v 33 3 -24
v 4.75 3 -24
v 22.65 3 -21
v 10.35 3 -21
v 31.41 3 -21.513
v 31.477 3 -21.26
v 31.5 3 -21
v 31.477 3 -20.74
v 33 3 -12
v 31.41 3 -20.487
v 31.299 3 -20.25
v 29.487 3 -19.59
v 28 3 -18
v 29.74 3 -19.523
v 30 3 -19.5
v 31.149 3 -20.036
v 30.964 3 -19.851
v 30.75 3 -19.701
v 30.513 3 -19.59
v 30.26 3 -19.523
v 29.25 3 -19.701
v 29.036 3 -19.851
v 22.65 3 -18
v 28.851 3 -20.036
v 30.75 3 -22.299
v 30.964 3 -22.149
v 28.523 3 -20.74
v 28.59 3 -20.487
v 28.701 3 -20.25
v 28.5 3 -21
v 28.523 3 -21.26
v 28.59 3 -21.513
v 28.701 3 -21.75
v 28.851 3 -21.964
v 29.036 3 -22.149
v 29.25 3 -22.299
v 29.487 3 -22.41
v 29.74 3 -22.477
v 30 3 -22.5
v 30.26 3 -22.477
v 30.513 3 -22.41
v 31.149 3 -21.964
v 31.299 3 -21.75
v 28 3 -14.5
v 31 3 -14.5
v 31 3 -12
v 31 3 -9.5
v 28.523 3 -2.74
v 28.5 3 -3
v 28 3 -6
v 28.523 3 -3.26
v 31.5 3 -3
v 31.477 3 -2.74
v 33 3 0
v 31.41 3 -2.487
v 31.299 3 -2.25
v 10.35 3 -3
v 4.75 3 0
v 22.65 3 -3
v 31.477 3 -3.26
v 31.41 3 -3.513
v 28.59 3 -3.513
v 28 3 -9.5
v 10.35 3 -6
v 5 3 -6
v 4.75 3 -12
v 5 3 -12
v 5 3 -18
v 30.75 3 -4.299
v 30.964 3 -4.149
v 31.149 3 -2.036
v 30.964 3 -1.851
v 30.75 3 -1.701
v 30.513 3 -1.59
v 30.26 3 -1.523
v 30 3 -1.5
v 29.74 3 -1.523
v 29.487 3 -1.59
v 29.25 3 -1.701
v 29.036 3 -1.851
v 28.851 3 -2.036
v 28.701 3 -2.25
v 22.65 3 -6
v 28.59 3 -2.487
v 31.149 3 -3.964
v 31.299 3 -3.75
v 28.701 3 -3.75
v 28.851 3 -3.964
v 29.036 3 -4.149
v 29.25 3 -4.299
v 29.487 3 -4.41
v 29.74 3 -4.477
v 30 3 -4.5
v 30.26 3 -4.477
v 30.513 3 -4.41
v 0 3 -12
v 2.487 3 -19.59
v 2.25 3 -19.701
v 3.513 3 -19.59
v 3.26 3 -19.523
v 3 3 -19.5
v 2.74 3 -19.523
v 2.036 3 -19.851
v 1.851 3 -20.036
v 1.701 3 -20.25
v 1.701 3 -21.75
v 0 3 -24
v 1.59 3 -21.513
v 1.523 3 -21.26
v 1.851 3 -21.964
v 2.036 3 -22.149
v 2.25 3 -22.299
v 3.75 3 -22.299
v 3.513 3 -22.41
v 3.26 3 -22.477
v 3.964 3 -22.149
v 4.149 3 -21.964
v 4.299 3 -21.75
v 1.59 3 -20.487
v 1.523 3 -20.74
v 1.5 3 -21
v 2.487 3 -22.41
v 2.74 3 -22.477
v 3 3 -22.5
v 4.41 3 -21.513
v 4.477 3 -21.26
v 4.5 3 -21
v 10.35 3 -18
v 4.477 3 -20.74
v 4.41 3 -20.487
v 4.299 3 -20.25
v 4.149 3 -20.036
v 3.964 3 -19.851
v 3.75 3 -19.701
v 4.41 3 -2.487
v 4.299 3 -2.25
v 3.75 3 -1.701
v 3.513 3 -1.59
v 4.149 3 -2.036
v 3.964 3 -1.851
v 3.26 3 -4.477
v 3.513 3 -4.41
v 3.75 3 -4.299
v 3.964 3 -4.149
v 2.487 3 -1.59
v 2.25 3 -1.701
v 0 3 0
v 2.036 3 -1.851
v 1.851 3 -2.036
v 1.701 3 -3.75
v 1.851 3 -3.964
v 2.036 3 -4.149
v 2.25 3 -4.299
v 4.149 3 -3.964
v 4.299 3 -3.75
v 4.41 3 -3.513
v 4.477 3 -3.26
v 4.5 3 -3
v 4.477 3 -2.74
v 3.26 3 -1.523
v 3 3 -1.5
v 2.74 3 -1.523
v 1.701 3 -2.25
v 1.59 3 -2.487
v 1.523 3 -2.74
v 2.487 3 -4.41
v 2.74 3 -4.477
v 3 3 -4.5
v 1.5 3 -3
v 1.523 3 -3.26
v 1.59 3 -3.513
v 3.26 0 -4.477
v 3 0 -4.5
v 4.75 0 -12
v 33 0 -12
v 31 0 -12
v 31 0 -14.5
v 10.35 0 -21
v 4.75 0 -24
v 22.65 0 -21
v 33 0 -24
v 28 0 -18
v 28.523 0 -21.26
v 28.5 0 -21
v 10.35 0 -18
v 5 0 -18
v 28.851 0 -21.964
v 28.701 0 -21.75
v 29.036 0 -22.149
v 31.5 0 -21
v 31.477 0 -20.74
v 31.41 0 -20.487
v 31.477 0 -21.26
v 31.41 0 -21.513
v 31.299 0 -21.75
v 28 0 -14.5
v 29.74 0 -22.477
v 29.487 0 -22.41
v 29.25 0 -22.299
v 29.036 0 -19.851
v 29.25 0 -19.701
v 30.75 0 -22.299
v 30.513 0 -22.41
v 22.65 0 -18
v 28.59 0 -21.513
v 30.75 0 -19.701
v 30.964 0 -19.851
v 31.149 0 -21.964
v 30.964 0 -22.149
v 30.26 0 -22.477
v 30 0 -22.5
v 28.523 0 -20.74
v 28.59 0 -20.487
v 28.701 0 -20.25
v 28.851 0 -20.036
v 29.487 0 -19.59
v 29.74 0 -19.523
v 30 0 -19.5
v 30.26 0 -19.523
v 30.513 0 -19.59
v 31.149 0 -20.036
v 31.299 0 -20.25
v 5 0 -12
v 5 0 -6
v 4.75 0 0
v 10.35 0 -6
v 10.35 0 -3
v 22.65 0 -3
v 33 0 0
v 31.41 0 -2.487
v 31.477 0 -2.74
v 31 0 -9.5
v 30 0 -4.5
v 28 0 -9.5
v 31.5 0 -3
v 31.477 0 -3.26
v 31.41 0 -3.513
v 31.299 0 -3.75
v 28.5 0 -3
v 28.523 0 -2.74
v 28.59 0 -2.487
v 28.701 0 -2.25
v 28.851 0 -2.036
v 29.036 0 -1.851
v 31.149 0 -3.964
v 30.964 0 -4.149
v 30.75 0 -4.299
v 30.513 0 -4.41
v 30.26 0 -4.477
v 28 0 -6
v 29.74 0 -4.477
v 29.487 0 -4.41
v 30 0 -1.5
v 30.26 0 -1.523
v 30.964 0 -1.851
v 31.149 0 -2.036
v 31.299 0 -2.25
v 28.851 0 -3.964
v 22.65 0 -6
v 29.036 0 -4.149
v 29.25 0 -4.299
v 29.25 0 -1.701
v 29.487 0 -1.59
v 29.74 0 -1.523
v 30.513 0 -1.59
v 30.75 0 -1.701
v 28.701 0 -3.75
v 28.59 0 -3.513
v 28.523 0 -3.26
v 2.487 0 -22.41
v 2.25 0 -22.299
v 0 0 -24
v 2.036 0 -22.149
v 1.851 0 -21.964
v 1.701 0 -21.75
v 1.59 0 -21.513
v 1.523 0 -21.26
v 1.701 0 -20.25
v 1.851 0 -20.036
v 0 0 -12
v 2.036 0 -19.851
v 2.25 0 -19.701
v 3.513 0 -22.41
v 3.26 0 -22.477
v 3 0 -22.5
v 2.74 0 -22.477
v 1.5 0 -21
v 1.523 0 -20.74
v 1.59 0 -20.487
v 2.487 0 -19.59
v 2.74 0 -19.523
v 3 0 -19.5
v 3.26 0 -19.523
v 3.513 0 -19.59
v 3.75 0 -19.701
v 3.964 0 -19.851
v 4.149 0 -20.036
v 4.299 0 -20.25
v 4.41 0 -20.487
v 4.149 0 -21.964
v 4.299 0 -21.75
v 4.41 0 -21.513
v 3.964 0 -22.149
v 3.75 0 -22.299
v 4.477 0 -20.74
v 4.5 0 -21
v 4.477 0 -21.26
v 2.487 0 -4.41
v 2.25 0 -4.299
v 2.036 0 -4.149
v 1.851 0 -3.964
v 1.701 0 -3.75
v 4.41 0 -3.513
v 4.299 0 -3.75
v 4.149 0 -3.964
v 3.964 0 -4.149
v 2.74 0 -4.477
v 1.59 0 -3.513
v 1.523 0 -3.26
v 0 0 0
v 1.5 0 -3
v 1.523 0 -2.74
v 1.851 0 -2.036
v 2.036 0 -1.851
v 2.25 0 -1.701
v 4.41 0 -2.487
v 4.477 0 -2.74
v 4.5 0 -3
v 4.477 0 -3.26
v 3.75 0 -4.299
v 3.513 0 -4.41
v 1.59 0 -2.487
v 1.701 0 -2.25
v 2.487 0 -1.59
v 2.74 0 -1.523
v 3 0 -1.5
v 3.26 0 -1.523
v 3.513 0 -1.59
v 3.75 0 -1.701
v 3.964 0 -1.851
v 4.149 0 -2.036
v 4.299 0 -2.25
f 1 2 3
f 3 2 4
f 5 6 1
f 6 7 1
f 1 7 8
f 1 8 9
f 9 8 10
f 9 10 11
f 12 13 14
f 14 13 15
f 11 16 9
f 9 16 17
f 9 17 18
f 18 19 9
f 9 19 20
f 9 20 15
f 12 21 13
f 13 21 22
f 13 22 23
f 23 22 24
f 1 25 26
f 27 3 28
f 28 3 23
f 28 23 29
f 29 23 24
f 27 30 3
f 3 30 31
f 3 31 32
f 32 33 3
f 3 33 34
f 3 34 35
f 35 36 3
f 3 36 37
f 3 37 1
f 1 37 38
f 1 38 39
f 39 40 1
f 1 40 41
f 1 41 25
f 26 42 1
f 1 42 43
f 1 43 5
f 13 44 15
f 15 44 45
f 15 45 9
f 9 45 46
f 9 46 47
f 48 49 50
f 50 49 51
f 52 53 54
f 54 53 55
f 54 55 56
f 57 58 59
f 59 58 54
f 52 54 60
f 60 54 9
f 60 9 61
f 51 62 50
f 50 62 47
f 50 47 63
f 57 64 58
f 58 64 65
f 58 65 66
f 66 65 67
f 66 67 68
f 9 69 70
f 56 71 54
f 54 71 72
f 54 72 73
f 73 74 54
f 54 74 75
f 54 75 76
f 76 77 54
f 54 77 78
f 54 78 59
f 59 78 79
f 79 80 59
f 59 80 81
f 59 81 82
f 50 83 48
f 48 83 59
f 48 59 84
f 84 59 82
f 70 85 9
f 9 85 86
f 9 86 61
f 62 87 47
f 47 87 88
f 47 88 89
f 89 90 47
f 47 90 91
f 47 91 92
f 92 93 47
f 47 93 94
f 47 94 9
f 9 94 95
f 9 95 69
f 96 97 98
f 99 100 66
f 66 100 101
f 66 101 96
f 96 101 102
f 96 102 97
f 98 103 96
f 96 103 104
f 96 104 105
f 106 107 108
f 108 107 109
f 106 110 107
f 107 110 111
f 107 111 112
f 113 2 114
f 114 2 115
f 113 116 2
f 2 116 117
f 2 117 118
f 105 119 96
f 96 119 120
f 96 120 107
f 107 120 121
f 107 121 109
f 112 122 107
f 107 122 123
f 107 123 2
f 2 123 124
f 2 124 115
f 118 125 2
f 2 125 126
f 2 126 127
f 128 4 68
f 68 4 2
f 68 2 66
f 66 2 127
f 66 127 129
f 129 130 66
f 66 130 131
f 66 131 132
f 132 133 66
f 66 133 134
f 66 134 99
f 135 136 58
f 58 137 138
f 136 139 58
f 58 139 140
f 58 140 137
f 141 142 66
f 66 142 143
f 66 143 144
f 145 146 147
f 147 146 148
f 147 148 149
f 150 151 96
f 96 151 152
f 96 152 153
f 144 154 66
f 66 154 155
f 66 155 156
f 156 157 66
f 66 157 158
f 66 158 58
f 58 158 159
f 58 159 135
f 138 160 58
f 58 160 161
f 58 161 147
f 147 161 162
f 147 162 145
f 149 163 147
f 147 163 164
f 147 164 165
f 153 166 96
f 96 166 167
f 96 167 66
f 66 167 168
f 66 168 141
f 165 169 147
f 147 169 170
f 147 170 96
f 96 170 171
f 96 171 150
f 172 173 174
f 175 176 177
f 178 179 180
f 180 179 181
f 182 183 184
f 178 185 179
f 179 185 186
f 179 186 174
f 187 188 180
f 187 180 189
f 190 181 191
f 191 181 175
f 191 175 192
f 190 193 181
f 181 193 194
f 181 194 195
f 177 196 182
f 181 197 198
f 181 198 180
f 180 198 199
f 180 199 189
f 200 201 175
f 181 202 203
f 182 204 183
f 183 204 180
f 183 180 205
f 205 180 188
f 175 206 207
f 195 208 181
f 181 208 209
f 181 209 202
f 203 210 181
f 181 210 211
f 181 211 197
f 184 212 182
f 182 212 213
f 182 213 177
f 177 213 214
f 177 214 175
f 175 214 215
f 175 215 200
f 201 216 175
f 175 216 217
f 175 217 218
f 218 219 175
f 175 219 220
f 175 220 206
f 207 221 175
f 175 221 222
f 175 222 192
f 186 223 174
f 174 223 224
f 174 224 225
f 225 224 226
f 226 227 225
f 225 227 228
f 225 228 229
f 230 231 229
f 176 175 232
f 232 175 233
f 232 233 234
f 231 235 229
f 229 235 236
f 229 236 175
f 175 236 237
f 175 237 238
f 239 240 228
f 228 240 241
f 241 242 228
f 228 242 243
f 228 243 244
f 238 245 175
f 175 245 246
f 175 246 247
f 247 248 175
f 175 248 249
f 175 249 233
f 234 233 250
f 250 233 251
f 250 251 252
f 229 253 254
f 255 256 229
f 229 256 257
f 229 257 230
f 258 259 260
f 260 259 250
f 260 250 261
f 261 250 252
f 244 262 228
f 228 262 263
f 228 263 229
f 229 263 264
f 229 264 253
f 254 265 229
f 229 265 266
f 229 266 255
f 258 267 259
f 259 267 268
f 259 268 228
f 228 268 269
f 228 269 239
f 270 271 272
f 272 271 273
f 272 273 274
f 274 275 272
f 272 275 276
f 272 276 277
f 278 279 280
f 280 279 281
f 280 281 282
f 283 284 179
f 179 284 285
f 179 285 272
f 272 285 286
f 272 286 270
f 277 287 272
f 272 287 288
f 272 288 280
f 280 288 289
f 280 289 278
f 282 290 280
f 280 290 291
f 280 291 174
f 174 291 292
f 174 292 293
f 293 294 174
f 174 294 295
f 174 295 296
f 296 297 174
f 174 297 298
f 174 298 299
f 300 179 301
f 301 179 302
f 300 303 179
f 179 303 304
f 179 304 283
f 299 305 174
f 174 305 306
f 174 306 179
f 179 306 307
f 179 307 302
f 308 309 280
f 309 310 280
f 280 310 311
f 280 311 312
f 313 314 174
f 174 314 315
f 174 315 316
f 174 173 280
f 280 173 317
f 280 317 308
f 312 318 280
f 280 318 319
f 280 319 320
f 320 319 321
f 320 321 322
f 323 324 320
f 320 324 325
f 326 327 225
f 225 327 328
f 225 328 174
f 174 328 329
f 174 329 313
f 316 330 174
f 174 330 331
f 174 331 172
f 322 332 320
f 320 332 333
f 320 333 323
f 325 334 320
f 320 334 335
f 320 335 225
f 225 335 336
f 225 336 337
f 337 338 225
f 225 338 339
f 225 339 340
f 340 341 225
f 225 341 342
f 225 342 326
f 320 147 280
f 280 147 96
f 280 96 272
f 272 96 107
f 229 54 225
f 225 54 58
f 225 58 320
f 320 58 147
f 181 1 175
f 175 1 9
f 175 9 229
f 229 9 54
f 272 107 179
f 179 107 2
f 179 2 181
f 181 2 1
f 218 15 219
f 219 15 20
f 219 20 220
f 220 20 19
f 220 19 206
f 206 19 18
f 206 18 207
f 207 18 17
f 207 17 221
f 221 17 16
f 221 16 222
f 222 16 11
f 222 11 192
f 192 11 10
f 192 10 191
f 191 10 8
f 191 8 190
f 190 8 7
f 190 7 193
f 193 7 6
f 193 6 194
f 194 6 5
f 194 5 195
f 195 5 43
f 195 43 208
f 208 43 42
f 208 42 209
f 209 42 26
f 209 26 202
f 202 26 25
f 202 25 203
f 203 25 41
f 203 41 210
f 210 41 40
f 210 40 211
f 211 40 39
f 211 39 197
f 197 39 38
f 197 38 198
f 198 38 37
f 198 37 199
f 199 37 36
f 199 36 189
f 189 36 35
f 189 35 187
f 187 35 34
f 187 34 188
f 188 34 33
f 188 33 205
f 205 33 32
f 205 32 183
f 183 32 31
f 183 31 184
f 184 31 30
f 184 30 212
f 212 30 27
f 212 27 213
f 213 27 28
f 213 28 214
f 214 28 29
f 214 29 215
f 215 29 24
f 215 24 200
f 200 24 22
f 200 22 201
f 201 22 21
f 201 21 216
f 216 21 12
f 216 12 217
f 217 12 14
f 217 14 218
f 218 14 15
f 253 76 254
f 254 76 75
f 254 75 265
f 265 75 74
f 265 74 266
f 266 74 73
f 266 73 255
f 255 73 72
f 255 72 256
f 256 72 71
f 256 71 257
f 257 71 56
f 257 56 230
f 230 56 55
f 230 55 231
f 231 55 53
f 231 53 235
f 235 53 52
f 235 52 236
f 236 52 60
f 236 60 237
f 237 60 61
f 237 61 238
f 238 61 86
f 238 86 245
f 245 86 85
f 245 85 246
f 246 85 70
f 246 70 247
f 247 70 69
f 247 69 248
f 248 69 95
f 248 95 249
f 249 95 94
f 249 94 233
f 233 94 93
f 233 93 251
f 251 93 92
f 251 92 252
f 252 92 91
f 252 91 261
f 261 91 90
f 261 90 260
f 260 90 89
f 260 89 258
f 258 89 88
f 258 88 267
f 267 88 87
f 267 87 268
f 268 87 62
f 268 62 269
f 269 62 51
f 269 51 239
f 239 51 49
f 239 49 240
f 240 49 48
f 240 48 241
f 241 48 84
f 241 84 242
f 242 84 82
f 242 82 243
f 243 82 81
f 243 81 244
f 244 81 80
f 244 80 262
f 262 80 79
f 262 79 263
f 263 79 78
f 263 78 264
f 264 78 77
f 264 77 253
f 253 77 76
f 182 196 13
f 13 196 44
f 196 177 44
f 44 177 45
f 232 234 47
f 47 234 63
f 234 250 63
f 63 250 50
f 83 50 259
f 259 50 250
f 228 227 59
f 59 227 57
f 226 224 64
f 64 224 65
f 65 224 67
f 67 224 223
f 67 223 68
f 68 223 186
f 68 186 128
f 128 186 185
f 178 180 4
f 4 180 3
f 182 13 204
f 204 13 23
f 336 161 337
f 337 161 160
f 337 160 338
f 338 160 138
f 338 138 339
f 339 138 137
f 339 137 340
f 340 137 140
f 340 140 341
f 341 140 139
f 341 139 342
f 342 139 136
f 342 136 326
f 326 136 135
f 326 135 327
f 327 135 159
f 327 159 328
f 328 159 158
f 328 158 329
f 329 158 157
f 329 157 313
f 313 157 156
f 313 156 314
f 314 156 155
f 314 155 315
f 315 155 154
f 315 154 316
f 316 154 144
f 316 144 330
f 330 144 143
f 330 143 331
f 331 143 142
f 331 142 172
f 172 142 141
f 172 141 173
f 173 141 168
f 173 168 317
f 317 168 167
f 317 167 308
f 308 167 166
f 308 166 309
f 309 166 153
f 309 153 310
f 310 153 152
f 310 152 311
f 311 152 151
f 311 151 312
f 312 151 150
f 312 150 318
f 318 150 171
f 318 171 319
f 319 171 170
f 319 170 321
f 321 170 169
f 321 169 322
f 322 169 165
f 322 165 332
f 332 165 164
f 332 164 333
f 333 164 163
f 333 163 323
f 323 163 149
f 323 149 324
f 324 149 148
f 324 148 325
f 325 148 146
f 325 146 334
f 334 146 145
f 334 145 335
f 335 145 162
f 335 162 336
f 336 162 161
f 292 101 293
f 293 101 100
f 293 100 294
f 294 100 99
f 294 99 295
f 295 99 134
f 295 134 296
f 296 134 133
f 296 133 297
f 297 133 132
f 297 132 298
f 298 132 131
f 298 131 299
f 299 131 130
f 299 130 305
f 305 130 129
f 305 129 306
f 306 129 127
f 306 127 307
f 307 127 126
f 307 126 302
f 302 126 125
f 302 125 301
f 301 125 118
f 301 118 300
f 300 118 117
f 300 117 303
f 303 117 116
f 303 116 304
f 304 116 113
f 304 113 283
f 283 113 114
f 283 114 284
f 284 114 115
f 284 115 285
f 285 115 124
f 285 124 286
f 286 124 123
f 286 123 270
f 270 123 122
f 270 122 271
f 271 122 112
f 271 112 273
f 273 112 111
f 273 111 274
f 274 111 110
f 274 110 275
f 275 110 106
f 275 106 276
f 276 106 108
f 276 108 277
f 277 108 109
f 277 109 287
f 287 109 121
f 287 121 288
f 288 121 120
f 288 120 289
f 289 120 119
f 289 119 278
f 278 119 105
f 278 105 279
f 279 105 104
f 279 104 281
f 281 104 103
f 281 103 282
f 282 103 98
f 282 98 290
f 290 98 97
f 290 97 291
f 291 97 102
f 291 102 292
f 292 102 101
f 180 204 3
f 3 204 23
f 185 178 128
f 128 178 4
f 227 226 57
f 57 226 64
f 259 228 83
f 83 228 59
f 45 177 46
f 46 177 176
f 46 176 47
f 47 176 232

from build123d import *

# Parameters (mm, degrees)
SKETCH1_W           = 33
SKETCH1_H           = 24
BOSS_EXTRUDE1_DEPTH = 3
SKETCH2_W           = 23
SKETCH2_H           = 12
SKETCH2_W_2         = 1.5
SKETCH2_H_2         = 5
SKETCH2_R           = 1.5
SKETCH2_W_3         = 12
SKETCH2_H_3         = 3
CUT_EXTRUDE1_DEPTH  = 4
SKETCH3_W           = 0.15
SKETCH3_H           = 3
SKETCH3_W_2         = 1.5
SKETCH3_H_2         = 5
CUT_EXTRUDE2_DEPTH  = 4


with BuildPart() as part:
    # Sketch1 → Boss-Extrude1 (new body)
    with BuildSketch(Plane(origin=(0, 0, 0), x_dir=(1, 0, 0), z_dir=(0, 1, 0))):
        with Locations((16.5, 12)):
            Rectangle(SKETCH1_W, SKETCH1_H)
    extrude(amount=BOSS_EXTRUDE1_DEPTH)

    # Sketch2 → Cut-Extrude1 (cut, through all)
    with BuildSketch(Plane(origin=(0, 3, 0), x_dir=(1, 0, 0), z_dir=(0, 1, 0))):
        with Locations((16.5, 12)):
            Rectangle(SKETCH2_W, SKETCH2_H)
        with Locations((28.75, 12)):
            Rectangle(SKETCH2_W_2, SKETCH2_H_2)
        with Locations((30, 21)):
            Circle(SKETCH2_R)
        with Locations((16.5, 4.5)):
            Rectangle(SKETCH2_W_3, SKETCH2_H_3)
        with Locations((16.5, 19.5)):
            Rectangle(SKETCH2_W_3, SKETCH2_H_3)
        with Locations((30, 3)):
            Circle(SKETCH2_R)
        with Locations((3, 3)):
            Circle(SKETCH2_R)
        with Locations((3, 21)):
            Circle(SKETCH2_R)
    extrude(amount=-CUT_EXTRUDE1_DEPTH, mode=Mode.SUBTRACT)

    # Sketch3 → Cut-Extrude2 (cut, through all)
    with BuildSketch(Plane(origin=(0, 3, 0), x_dir=(1, 0, 0), z_dir=(0, 1, 0))):
        with Locations((10.425, 19.5)):
            Rectangle(SKETCH3_W, SKETCH3_H)
        with Locations((22.575, 19.5)):
            Rectangle(SKETCH3_W, SKETCH3_H)
        with Locations((22.575, 4.5)):
            Rectangle(SKETCH3_W, SKETCH3_H)
        with Locations((10.425, 4.5)):
            Rectangle(SKETCH3_W, SKETCH3_H)
        with Locations((30.25, 12)):
            Rectangle(SKETCH3_W_2, SKETCH3_H_2)
    extrude(amount=-CUT_EXTRUDE2_DEPTH, mode=Mode.SUBTRACT)


solid = part.part
